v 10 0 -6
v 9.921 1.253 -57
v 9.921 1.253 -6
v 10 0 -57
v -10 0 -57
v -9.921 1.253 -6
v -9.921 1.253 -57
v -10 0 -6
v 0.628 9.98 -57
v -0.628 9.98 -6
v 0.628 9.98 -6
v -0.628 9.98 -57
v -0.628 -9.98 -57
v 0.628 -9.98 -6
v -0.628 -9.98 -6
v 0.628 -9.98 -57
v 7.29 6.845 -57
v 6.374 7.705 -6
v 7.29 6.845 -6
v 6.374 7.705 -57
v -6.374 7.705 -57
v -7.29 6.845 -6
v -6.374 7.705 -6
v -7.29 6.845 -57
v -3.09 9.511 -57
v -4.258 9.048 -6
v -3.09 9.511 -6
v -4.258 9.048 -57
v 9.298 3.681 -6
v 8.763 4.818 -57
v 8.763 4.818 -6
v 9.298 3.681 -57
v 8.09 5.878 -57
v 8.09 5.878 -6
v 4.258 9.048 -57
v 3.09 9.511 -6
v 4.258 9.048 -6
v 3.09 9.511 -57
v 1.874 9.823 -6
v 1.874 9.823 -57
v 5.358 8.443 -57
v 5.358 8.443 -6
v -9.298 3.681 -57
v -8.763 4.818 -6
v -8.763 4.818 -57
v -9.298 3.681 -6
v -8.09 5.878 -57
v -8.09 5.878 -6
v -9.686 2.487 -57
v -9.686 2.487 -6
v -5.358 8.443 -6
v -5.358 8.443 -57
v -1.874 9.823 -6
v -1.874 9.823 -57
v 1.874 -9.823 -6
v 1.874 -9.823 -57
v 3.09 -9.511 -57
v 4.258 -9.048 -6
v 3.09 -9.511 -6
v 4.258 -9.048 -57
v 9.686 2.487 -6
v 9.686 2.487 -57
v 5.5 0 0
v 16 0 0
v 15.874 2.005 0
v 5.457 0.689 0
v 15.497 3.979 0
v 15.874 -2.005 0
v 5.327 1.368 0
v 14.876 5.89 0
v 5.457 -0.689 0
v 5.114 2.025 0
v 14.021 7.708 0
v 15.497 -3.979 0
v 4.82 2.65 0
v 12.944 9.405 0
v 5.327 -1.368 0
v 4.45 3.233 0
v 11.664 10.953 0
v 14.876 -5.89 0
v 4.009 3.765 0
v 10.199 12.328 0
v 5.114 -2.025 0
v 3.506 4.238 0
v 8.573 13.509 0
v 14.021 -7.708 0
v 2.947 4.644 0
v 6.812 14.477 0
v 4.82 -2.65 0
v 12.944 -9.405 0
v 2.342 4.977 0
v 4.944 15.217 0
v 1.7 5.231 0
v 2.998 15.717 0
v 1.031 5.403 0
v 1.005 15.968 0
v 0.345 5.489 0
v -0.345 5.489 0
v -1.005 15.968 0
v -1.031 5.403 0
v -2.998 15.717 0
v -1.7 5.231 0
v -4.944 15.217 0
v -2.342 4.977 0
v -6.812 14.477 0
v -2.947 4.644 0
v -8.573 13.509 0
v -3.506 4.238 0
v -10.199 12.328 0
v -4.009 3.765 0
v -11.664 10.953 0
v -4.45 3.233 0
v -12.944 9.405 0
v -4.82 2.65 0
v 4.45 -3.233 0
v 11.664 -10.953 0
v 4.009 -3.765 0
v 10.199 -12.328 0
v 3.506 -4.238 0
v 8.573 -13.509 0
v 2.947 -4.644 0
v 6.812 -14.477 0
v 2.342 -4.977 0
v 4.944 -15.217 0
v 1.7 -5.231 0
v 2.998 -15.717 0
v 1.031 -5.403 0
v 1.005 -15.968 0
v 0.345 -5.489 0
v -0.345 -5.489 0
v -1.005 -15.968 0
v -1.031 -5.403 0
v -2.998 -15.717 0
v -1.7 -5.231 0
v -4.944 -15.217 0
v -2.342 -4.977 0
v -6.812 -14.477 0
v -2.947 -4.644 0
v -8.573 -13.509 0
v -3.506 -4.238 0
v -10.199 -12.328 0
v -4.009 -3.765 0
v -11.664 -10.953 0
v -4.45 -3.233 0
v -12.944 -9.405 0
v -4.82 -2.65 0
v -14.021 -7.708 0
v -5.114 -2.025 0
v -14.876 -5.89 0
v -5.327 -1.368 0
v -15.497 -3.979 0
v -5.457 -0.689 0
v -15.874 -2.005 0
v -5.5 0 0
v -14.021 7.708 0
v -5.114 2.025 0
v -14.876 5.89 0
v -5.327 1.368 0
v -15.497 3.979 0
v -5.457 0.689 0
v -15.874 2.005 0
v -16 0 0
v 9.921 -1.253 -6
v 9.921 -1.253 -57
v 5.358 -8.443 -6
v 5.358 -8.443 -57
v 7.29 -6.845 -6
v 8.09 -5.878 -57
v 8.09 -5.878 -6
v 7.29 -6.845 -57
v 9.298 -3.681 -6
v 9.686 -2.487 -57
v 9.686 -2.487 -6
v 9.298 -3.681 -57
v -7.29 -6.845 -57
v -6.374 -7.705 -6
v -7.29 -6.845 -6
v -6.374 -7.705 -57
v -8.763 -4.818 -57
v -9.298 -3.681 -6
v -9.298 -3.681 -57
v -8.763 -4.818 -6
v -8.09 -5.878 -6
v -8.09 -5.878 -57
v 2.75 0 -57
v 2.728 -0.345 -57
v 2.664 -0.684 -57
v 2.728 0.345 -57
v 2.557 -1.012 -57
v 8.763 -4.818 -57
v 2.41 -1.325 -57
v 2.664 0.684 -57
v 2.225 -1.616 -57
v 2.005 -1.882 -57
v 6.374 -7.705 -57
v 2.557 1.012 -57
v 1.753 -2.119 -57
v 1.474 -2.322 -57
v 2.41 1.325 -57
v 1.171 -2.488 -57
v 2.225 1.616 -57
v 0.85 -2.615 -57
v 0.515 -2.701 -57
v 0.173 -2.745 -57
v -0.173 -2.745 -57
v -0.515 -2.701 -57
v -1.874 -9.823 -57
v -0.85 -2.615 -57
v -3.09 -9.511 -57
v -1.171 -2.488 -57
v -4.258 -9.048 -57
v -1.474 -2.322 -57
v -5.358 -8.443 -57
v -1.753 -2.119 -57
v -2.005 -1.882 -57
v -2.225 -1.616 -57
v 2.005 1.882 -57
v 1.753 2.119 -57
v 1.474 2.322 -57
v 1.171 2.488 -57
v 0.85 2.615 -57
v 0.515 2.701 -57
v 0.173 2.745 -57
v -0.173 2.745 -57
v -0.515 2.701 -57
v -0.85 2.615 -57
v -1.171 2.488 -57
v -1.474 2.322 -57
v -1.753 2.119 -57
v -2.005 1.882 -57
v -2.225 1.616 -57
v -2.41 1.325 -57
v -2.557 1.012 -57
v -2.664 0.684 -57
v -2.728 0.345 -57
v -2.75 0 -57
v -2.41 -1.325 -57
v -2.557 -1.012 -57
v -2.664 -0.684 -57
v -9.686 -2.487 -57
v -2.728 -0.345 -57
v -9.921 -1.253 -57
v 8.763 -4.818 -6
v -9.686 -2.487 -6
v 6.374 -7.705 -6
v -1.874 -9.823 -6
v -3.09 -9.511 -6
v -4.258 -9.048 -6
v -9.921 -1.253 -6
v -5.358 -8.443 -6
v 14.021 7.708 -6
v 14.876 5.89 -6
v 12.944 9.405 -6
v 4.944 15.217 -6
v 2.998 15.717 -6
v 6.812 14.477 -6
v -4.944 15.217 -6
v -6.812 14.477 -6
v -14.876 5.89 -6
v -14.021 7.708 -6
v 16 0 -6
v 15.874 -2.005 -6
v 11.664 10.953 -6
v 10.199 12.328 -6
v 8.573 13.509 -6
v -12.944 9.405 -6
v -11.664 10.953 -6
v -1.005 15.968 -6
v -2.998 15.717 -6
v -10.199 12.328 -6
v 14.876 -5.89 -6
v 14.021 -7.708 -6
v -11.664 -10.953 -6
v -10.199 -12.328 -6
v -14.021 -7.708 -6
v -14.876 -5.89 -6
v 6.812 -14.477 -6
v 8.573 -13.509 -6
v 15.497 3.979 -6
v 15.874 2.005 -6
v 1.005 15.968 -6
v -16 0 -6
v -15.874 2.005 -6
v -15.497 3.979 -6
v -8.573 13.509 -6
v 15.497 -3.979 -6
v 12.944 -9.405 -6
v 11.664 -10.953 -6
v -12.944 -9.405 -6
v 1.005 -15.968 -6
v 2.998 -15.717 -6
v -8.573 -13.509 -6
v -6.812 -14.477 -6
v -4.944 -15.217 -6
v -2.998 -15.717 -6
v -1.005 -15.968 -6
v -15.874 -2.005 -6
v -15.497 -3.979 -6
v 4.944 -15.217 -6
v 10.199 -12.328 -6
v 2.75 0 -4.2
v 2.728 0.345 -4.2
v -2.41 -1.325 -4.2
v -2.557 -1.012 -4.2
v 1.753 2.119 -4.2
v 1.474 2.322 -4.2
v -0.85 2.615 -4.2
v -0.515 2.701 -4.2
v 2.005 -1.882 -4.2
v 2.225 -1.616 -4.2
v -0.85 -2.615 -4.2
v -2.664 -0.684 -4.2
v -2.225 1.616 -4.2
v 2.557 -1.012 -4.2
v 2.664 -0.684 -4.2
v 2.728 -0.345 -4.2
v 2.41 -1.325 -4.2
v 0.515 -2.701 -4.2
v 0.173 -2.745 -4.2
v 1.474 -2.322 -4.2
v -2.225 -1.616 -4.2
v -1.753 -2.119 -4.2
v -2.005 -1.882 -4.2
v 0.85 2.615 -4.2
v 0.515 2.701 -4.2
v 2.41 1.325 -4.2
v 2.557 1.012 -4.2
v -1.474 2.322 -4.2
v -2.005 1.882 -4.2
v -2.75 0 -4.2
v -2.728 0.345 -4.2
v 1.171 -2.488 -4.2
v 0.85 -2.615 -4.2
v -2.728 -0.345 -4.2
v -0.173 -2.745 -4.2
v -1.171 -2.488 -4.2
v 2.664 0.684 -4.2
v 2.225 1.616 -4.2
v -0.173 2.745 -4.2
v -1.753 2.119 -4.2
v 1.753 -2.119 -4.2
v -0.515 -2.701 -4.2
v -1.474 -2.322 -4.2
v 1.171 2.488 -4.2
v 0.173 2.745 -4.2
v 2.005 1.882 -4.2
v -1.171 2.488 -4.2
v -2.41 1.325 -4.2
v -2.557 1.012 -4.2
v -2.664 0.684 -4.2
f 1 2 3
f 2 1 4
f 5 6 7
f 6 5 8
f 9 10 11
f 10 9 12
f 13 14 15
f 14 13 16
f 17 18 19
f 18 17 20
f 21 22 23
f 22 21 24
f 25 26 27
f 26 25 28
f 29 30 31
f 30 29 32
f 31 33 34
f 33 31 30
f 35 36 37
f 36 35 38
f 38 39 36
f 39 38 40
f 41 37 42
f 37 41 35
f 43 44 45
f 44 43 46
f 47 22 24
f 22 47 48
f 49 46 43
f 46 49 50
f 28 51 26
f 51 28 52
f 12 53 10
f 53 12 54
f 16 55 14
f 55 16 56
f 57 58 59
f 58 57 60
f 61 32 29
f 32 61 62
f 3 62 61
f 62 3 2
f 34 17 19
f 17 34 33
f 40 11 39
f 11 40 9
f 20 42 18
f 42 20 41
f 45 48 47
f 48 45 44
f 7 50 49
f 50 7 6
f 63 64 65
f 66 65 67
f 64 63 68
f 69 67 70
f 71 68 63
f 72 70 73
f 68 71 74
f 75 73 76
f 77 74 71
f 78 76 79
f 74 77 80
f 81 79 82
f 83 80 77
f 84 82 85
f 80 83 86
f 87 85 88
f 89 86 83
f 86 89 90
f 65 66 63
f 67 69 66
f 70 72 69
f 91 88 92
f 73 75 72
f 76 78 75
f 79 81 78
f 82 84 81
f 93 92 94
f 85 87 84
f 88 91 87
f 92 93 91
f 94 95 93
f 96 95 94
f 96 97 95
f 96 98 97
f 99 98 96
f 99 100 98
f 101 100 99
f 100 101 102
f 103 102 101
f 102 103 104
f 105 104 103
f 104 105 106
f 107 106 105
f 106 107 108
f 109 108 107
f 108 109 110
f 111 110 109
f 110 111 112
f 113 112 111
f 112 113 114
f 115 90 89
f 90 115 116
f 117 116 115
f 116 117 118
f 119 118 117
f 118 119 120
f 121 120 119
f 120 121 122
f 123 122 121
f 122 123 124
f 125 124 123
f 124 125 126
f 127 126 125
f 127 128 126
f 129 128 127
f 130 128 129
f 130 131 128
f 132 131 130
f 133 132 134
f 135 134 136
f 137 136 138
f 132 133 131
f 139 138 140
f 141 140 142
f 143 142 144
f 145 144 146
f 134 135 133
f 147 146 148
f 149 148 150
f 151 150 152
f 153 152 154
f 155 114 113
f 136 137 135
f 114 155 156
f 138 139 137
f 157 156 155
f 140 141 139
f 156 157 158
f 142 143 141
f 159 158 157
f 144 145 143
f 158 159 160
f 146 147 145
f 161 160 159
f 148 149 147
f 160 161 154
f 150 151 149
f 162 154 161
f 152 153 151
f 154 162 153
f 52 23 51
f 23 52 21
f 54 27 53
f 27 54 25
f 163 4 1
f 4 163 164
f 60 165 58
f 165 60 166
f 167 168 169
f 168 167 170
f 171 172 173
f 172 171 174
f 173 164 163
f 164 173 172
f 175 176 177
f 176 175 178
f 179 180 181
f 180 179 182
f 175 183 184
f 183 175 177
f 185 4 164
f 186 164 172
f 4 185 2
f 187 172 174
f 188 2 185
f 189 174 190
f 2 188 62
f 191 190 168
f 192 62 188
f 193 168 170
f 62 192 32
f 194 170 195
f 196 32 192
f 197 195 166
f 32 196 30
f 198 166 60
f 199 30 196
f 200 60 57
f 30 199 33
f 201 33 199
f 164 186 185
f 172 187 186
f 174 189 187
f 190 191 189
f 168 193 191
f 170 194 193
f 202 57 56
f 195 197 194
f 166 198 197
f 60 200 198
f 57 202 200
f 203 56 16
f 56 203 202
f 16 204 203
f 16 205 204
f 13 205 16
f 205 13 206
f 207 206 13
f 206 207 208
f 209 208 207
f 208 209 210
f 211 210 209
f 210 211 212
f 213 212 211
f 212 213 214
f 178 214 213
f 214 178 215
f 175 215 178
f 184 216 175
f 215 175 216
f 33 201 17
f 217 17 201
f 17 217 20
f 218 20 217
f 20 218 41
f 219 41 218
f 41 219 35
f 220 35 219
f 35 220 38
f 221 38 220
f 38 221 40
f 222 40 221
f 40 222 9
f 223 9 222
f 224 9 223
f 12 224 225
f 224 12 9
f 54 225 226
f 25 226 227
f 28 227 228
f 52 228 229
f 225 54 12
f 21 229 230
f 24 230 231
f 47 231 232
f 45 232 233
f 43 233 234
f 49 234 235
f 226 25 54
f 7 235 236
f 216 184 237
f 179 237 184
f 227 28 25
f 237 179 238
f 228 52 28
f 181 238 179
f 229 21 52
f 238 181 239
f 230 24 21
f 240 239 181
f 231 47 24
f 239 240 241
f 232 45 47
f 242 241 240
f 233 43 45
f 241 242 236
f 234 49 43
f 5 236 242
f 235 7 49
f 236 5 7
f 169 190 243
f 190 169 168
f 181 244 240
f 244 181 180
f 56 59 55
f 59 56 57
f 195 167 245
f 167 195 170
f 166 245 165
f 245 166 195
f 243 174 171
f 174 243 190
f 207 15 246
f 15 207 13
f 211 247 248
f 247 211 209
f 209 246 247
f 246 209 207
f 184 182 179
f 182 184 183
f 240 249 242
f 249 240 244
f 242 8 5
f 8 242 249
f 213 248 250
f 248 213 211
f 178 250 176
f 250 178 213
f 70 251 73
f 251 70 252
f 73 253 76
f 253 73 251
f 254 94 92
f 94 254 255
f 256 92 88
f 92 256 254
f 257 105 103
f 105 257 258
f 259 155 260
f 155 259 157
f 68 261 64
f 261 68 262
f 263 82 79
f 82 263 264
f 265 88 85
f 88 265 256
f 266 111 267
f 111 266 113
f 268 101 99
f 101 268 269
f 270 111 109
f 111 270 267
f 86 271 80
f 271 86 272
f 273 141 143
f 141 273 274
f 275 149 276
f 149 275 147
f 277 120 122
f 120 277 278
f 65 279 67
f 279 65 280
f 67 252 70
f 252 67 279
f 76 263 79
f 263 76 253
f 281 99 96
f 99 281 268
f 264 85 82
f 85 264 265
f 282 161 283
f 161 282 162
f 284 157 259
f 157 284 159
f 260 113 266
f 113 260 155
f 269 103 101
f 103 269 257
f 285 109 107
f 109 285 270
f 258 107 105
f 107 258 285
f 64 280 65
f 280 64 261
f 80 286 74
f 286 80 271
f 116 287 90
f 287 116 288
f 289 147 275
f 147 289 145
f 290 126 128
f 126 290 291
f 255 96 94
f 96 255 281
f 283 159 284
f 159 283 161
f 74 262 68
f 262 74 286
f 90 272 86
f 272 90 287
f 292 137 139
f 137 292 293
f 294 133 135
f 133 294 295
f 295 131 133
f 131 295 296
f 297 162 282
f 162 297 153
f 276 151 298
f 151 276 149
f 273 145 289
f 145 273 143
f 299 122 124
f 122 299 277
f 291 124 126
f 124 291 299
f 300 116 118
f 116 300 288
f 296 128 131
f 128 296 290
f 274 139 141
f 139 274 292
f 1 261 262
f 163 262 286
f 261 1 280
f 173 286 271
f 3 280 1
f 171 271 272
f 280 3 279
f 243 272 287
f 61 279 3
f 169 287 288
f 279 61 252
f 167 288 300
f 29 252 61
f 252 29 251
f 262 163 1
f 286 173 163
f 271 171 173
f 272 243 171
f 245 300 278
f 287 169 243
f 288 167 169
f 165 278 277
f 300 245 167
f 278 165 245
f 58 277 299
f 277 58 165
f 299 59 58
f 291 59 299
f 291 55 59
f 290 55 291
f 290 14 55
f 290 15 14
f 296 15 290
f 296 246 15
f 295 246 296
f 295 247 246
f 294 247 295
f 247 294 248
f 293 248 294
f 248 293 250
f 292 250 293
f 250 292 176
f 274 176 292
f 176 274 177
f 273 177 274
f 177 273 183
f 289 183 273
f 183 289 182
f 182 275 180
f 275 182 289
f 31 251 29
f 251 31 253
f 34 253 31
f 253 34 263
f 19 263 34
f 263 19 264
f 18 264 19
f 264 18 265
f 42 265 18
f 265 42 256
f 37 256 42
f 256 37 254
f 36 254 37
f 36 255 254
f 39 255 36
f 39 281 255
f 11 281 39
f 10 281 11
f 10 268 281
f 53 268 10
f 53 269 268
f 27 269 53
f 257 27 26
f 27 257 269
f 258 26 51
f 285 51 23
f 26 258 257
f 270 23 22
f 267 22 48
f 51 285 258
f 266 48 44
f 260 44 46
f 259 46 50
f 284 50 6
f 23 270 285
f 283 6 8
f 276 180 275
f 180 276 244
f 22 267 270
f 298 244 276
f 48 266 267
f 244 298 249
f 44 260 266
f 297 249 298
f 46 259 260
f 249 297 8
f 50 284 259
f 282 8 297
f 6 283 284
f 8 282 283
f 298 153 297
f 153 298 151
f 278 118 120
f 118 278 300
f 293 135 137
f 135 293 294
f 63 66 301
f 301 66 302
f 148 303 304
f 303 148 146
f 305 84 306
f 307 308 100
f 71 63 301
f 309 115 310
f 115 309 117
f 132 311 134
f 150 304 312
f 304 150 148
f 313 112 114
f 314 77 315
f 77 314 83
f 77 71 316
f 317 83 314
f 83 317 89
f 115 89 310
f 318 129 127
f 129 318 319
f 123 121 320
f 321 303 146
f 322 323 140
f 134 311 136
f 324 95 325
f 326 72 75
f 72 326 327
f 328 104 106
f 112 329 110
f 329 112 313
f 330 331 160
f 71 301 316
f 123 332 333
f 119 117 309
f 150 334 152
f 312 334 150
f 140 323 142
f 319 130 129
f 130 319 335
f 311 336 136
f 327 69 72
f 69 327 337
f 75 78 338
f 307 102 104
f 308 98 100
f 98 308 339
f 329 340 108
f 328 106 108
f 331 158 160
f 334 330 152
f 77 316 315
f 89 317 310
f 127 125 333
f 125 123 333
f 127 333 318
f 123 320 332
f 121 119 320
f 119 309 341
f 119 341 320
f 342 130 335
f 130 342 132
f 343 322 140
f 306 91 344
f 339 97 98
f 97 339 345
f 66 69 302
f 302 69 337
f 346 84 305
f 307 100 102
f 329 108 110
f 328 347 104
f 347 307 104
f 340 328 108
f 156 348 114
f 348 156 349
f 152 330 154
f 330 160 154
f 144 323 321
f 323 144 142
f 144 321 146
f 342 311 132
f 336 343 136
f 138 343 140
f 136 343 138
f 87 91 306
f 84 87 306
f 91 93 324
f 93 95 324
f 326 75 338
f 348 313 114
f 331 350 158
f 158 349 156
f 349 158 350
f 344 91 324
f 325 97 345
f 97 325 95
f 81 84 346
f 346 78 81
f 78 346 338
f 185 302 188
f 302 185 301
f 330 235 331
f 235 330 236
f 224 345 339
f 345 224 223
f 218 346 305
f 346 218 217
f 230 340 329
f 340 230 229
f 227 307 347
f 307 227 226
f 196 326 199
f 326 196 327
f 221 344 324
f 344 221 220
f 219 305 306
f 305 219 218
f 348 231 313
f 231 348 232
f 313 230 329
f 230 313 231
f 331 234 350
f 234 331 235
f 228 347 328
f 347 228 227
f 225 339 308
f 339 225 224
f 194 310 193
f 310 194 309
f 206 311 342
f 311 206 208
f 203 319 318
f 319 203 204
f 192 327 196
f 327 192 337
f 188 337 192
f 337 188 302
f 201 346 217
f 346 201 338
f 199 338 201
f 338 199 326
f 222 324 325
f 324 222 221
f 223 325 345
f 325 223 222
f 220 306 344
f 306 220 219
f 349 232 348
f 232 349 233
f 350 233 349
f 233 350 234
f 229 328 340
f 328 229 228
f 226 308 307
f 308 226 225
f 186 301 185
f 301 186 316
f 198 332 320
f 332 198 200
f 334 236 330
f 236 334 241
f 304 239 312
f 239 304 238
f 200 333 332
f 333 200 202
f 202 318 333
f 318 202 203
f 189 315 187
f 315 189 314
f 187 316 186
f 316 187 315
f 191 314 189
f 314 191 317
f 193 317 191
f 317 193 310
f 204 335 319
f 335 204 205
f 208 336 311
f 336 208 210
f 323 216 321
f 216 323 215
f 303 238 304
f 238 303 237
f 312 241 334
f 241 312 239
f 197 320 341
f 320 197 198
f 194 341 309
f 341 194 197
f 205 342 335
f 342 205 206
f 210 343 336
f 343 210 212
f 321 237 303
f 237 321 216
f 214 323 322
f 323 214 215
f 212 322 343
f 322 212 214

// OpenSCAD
$fn = 50;


difference() {
	union() {
		translate(v = [0, 0, -57.0000000000]) {
			cylinder(h = 57, r = 10.0000000000);
		}
		translate(v = [0, 0, -6.0000000000]) {
			cylinder(h = 6, r = 16.0000000000);
		}
	}
	union() {
		translate(v = [0, 0, 0]) {
			rotate(a = [0, 0, 0]) {
				difference() {
					union() {
						#translate(v = [0, 0, -57.0000000000]) {
							cylinder(h = 57, r = 2.2500000000);
						}
						#translate(v = [0, 0, -4.2000000000]) {
							cylinder(h = 4.2000000000, r1 = 2.7500000000, r2 = 5.5000000000);
						}
						#translate(v = [0, 0, -57.0000000000]) {
							cylinder(h = 57, r = 2.7500000000);
						}
						#translate(v = [0, 0, -57.0000000000]) {
							cylinder(h = 57, r = 2.2500000000);
						}
					}
					union();
				}
			}
		}
	}
}
